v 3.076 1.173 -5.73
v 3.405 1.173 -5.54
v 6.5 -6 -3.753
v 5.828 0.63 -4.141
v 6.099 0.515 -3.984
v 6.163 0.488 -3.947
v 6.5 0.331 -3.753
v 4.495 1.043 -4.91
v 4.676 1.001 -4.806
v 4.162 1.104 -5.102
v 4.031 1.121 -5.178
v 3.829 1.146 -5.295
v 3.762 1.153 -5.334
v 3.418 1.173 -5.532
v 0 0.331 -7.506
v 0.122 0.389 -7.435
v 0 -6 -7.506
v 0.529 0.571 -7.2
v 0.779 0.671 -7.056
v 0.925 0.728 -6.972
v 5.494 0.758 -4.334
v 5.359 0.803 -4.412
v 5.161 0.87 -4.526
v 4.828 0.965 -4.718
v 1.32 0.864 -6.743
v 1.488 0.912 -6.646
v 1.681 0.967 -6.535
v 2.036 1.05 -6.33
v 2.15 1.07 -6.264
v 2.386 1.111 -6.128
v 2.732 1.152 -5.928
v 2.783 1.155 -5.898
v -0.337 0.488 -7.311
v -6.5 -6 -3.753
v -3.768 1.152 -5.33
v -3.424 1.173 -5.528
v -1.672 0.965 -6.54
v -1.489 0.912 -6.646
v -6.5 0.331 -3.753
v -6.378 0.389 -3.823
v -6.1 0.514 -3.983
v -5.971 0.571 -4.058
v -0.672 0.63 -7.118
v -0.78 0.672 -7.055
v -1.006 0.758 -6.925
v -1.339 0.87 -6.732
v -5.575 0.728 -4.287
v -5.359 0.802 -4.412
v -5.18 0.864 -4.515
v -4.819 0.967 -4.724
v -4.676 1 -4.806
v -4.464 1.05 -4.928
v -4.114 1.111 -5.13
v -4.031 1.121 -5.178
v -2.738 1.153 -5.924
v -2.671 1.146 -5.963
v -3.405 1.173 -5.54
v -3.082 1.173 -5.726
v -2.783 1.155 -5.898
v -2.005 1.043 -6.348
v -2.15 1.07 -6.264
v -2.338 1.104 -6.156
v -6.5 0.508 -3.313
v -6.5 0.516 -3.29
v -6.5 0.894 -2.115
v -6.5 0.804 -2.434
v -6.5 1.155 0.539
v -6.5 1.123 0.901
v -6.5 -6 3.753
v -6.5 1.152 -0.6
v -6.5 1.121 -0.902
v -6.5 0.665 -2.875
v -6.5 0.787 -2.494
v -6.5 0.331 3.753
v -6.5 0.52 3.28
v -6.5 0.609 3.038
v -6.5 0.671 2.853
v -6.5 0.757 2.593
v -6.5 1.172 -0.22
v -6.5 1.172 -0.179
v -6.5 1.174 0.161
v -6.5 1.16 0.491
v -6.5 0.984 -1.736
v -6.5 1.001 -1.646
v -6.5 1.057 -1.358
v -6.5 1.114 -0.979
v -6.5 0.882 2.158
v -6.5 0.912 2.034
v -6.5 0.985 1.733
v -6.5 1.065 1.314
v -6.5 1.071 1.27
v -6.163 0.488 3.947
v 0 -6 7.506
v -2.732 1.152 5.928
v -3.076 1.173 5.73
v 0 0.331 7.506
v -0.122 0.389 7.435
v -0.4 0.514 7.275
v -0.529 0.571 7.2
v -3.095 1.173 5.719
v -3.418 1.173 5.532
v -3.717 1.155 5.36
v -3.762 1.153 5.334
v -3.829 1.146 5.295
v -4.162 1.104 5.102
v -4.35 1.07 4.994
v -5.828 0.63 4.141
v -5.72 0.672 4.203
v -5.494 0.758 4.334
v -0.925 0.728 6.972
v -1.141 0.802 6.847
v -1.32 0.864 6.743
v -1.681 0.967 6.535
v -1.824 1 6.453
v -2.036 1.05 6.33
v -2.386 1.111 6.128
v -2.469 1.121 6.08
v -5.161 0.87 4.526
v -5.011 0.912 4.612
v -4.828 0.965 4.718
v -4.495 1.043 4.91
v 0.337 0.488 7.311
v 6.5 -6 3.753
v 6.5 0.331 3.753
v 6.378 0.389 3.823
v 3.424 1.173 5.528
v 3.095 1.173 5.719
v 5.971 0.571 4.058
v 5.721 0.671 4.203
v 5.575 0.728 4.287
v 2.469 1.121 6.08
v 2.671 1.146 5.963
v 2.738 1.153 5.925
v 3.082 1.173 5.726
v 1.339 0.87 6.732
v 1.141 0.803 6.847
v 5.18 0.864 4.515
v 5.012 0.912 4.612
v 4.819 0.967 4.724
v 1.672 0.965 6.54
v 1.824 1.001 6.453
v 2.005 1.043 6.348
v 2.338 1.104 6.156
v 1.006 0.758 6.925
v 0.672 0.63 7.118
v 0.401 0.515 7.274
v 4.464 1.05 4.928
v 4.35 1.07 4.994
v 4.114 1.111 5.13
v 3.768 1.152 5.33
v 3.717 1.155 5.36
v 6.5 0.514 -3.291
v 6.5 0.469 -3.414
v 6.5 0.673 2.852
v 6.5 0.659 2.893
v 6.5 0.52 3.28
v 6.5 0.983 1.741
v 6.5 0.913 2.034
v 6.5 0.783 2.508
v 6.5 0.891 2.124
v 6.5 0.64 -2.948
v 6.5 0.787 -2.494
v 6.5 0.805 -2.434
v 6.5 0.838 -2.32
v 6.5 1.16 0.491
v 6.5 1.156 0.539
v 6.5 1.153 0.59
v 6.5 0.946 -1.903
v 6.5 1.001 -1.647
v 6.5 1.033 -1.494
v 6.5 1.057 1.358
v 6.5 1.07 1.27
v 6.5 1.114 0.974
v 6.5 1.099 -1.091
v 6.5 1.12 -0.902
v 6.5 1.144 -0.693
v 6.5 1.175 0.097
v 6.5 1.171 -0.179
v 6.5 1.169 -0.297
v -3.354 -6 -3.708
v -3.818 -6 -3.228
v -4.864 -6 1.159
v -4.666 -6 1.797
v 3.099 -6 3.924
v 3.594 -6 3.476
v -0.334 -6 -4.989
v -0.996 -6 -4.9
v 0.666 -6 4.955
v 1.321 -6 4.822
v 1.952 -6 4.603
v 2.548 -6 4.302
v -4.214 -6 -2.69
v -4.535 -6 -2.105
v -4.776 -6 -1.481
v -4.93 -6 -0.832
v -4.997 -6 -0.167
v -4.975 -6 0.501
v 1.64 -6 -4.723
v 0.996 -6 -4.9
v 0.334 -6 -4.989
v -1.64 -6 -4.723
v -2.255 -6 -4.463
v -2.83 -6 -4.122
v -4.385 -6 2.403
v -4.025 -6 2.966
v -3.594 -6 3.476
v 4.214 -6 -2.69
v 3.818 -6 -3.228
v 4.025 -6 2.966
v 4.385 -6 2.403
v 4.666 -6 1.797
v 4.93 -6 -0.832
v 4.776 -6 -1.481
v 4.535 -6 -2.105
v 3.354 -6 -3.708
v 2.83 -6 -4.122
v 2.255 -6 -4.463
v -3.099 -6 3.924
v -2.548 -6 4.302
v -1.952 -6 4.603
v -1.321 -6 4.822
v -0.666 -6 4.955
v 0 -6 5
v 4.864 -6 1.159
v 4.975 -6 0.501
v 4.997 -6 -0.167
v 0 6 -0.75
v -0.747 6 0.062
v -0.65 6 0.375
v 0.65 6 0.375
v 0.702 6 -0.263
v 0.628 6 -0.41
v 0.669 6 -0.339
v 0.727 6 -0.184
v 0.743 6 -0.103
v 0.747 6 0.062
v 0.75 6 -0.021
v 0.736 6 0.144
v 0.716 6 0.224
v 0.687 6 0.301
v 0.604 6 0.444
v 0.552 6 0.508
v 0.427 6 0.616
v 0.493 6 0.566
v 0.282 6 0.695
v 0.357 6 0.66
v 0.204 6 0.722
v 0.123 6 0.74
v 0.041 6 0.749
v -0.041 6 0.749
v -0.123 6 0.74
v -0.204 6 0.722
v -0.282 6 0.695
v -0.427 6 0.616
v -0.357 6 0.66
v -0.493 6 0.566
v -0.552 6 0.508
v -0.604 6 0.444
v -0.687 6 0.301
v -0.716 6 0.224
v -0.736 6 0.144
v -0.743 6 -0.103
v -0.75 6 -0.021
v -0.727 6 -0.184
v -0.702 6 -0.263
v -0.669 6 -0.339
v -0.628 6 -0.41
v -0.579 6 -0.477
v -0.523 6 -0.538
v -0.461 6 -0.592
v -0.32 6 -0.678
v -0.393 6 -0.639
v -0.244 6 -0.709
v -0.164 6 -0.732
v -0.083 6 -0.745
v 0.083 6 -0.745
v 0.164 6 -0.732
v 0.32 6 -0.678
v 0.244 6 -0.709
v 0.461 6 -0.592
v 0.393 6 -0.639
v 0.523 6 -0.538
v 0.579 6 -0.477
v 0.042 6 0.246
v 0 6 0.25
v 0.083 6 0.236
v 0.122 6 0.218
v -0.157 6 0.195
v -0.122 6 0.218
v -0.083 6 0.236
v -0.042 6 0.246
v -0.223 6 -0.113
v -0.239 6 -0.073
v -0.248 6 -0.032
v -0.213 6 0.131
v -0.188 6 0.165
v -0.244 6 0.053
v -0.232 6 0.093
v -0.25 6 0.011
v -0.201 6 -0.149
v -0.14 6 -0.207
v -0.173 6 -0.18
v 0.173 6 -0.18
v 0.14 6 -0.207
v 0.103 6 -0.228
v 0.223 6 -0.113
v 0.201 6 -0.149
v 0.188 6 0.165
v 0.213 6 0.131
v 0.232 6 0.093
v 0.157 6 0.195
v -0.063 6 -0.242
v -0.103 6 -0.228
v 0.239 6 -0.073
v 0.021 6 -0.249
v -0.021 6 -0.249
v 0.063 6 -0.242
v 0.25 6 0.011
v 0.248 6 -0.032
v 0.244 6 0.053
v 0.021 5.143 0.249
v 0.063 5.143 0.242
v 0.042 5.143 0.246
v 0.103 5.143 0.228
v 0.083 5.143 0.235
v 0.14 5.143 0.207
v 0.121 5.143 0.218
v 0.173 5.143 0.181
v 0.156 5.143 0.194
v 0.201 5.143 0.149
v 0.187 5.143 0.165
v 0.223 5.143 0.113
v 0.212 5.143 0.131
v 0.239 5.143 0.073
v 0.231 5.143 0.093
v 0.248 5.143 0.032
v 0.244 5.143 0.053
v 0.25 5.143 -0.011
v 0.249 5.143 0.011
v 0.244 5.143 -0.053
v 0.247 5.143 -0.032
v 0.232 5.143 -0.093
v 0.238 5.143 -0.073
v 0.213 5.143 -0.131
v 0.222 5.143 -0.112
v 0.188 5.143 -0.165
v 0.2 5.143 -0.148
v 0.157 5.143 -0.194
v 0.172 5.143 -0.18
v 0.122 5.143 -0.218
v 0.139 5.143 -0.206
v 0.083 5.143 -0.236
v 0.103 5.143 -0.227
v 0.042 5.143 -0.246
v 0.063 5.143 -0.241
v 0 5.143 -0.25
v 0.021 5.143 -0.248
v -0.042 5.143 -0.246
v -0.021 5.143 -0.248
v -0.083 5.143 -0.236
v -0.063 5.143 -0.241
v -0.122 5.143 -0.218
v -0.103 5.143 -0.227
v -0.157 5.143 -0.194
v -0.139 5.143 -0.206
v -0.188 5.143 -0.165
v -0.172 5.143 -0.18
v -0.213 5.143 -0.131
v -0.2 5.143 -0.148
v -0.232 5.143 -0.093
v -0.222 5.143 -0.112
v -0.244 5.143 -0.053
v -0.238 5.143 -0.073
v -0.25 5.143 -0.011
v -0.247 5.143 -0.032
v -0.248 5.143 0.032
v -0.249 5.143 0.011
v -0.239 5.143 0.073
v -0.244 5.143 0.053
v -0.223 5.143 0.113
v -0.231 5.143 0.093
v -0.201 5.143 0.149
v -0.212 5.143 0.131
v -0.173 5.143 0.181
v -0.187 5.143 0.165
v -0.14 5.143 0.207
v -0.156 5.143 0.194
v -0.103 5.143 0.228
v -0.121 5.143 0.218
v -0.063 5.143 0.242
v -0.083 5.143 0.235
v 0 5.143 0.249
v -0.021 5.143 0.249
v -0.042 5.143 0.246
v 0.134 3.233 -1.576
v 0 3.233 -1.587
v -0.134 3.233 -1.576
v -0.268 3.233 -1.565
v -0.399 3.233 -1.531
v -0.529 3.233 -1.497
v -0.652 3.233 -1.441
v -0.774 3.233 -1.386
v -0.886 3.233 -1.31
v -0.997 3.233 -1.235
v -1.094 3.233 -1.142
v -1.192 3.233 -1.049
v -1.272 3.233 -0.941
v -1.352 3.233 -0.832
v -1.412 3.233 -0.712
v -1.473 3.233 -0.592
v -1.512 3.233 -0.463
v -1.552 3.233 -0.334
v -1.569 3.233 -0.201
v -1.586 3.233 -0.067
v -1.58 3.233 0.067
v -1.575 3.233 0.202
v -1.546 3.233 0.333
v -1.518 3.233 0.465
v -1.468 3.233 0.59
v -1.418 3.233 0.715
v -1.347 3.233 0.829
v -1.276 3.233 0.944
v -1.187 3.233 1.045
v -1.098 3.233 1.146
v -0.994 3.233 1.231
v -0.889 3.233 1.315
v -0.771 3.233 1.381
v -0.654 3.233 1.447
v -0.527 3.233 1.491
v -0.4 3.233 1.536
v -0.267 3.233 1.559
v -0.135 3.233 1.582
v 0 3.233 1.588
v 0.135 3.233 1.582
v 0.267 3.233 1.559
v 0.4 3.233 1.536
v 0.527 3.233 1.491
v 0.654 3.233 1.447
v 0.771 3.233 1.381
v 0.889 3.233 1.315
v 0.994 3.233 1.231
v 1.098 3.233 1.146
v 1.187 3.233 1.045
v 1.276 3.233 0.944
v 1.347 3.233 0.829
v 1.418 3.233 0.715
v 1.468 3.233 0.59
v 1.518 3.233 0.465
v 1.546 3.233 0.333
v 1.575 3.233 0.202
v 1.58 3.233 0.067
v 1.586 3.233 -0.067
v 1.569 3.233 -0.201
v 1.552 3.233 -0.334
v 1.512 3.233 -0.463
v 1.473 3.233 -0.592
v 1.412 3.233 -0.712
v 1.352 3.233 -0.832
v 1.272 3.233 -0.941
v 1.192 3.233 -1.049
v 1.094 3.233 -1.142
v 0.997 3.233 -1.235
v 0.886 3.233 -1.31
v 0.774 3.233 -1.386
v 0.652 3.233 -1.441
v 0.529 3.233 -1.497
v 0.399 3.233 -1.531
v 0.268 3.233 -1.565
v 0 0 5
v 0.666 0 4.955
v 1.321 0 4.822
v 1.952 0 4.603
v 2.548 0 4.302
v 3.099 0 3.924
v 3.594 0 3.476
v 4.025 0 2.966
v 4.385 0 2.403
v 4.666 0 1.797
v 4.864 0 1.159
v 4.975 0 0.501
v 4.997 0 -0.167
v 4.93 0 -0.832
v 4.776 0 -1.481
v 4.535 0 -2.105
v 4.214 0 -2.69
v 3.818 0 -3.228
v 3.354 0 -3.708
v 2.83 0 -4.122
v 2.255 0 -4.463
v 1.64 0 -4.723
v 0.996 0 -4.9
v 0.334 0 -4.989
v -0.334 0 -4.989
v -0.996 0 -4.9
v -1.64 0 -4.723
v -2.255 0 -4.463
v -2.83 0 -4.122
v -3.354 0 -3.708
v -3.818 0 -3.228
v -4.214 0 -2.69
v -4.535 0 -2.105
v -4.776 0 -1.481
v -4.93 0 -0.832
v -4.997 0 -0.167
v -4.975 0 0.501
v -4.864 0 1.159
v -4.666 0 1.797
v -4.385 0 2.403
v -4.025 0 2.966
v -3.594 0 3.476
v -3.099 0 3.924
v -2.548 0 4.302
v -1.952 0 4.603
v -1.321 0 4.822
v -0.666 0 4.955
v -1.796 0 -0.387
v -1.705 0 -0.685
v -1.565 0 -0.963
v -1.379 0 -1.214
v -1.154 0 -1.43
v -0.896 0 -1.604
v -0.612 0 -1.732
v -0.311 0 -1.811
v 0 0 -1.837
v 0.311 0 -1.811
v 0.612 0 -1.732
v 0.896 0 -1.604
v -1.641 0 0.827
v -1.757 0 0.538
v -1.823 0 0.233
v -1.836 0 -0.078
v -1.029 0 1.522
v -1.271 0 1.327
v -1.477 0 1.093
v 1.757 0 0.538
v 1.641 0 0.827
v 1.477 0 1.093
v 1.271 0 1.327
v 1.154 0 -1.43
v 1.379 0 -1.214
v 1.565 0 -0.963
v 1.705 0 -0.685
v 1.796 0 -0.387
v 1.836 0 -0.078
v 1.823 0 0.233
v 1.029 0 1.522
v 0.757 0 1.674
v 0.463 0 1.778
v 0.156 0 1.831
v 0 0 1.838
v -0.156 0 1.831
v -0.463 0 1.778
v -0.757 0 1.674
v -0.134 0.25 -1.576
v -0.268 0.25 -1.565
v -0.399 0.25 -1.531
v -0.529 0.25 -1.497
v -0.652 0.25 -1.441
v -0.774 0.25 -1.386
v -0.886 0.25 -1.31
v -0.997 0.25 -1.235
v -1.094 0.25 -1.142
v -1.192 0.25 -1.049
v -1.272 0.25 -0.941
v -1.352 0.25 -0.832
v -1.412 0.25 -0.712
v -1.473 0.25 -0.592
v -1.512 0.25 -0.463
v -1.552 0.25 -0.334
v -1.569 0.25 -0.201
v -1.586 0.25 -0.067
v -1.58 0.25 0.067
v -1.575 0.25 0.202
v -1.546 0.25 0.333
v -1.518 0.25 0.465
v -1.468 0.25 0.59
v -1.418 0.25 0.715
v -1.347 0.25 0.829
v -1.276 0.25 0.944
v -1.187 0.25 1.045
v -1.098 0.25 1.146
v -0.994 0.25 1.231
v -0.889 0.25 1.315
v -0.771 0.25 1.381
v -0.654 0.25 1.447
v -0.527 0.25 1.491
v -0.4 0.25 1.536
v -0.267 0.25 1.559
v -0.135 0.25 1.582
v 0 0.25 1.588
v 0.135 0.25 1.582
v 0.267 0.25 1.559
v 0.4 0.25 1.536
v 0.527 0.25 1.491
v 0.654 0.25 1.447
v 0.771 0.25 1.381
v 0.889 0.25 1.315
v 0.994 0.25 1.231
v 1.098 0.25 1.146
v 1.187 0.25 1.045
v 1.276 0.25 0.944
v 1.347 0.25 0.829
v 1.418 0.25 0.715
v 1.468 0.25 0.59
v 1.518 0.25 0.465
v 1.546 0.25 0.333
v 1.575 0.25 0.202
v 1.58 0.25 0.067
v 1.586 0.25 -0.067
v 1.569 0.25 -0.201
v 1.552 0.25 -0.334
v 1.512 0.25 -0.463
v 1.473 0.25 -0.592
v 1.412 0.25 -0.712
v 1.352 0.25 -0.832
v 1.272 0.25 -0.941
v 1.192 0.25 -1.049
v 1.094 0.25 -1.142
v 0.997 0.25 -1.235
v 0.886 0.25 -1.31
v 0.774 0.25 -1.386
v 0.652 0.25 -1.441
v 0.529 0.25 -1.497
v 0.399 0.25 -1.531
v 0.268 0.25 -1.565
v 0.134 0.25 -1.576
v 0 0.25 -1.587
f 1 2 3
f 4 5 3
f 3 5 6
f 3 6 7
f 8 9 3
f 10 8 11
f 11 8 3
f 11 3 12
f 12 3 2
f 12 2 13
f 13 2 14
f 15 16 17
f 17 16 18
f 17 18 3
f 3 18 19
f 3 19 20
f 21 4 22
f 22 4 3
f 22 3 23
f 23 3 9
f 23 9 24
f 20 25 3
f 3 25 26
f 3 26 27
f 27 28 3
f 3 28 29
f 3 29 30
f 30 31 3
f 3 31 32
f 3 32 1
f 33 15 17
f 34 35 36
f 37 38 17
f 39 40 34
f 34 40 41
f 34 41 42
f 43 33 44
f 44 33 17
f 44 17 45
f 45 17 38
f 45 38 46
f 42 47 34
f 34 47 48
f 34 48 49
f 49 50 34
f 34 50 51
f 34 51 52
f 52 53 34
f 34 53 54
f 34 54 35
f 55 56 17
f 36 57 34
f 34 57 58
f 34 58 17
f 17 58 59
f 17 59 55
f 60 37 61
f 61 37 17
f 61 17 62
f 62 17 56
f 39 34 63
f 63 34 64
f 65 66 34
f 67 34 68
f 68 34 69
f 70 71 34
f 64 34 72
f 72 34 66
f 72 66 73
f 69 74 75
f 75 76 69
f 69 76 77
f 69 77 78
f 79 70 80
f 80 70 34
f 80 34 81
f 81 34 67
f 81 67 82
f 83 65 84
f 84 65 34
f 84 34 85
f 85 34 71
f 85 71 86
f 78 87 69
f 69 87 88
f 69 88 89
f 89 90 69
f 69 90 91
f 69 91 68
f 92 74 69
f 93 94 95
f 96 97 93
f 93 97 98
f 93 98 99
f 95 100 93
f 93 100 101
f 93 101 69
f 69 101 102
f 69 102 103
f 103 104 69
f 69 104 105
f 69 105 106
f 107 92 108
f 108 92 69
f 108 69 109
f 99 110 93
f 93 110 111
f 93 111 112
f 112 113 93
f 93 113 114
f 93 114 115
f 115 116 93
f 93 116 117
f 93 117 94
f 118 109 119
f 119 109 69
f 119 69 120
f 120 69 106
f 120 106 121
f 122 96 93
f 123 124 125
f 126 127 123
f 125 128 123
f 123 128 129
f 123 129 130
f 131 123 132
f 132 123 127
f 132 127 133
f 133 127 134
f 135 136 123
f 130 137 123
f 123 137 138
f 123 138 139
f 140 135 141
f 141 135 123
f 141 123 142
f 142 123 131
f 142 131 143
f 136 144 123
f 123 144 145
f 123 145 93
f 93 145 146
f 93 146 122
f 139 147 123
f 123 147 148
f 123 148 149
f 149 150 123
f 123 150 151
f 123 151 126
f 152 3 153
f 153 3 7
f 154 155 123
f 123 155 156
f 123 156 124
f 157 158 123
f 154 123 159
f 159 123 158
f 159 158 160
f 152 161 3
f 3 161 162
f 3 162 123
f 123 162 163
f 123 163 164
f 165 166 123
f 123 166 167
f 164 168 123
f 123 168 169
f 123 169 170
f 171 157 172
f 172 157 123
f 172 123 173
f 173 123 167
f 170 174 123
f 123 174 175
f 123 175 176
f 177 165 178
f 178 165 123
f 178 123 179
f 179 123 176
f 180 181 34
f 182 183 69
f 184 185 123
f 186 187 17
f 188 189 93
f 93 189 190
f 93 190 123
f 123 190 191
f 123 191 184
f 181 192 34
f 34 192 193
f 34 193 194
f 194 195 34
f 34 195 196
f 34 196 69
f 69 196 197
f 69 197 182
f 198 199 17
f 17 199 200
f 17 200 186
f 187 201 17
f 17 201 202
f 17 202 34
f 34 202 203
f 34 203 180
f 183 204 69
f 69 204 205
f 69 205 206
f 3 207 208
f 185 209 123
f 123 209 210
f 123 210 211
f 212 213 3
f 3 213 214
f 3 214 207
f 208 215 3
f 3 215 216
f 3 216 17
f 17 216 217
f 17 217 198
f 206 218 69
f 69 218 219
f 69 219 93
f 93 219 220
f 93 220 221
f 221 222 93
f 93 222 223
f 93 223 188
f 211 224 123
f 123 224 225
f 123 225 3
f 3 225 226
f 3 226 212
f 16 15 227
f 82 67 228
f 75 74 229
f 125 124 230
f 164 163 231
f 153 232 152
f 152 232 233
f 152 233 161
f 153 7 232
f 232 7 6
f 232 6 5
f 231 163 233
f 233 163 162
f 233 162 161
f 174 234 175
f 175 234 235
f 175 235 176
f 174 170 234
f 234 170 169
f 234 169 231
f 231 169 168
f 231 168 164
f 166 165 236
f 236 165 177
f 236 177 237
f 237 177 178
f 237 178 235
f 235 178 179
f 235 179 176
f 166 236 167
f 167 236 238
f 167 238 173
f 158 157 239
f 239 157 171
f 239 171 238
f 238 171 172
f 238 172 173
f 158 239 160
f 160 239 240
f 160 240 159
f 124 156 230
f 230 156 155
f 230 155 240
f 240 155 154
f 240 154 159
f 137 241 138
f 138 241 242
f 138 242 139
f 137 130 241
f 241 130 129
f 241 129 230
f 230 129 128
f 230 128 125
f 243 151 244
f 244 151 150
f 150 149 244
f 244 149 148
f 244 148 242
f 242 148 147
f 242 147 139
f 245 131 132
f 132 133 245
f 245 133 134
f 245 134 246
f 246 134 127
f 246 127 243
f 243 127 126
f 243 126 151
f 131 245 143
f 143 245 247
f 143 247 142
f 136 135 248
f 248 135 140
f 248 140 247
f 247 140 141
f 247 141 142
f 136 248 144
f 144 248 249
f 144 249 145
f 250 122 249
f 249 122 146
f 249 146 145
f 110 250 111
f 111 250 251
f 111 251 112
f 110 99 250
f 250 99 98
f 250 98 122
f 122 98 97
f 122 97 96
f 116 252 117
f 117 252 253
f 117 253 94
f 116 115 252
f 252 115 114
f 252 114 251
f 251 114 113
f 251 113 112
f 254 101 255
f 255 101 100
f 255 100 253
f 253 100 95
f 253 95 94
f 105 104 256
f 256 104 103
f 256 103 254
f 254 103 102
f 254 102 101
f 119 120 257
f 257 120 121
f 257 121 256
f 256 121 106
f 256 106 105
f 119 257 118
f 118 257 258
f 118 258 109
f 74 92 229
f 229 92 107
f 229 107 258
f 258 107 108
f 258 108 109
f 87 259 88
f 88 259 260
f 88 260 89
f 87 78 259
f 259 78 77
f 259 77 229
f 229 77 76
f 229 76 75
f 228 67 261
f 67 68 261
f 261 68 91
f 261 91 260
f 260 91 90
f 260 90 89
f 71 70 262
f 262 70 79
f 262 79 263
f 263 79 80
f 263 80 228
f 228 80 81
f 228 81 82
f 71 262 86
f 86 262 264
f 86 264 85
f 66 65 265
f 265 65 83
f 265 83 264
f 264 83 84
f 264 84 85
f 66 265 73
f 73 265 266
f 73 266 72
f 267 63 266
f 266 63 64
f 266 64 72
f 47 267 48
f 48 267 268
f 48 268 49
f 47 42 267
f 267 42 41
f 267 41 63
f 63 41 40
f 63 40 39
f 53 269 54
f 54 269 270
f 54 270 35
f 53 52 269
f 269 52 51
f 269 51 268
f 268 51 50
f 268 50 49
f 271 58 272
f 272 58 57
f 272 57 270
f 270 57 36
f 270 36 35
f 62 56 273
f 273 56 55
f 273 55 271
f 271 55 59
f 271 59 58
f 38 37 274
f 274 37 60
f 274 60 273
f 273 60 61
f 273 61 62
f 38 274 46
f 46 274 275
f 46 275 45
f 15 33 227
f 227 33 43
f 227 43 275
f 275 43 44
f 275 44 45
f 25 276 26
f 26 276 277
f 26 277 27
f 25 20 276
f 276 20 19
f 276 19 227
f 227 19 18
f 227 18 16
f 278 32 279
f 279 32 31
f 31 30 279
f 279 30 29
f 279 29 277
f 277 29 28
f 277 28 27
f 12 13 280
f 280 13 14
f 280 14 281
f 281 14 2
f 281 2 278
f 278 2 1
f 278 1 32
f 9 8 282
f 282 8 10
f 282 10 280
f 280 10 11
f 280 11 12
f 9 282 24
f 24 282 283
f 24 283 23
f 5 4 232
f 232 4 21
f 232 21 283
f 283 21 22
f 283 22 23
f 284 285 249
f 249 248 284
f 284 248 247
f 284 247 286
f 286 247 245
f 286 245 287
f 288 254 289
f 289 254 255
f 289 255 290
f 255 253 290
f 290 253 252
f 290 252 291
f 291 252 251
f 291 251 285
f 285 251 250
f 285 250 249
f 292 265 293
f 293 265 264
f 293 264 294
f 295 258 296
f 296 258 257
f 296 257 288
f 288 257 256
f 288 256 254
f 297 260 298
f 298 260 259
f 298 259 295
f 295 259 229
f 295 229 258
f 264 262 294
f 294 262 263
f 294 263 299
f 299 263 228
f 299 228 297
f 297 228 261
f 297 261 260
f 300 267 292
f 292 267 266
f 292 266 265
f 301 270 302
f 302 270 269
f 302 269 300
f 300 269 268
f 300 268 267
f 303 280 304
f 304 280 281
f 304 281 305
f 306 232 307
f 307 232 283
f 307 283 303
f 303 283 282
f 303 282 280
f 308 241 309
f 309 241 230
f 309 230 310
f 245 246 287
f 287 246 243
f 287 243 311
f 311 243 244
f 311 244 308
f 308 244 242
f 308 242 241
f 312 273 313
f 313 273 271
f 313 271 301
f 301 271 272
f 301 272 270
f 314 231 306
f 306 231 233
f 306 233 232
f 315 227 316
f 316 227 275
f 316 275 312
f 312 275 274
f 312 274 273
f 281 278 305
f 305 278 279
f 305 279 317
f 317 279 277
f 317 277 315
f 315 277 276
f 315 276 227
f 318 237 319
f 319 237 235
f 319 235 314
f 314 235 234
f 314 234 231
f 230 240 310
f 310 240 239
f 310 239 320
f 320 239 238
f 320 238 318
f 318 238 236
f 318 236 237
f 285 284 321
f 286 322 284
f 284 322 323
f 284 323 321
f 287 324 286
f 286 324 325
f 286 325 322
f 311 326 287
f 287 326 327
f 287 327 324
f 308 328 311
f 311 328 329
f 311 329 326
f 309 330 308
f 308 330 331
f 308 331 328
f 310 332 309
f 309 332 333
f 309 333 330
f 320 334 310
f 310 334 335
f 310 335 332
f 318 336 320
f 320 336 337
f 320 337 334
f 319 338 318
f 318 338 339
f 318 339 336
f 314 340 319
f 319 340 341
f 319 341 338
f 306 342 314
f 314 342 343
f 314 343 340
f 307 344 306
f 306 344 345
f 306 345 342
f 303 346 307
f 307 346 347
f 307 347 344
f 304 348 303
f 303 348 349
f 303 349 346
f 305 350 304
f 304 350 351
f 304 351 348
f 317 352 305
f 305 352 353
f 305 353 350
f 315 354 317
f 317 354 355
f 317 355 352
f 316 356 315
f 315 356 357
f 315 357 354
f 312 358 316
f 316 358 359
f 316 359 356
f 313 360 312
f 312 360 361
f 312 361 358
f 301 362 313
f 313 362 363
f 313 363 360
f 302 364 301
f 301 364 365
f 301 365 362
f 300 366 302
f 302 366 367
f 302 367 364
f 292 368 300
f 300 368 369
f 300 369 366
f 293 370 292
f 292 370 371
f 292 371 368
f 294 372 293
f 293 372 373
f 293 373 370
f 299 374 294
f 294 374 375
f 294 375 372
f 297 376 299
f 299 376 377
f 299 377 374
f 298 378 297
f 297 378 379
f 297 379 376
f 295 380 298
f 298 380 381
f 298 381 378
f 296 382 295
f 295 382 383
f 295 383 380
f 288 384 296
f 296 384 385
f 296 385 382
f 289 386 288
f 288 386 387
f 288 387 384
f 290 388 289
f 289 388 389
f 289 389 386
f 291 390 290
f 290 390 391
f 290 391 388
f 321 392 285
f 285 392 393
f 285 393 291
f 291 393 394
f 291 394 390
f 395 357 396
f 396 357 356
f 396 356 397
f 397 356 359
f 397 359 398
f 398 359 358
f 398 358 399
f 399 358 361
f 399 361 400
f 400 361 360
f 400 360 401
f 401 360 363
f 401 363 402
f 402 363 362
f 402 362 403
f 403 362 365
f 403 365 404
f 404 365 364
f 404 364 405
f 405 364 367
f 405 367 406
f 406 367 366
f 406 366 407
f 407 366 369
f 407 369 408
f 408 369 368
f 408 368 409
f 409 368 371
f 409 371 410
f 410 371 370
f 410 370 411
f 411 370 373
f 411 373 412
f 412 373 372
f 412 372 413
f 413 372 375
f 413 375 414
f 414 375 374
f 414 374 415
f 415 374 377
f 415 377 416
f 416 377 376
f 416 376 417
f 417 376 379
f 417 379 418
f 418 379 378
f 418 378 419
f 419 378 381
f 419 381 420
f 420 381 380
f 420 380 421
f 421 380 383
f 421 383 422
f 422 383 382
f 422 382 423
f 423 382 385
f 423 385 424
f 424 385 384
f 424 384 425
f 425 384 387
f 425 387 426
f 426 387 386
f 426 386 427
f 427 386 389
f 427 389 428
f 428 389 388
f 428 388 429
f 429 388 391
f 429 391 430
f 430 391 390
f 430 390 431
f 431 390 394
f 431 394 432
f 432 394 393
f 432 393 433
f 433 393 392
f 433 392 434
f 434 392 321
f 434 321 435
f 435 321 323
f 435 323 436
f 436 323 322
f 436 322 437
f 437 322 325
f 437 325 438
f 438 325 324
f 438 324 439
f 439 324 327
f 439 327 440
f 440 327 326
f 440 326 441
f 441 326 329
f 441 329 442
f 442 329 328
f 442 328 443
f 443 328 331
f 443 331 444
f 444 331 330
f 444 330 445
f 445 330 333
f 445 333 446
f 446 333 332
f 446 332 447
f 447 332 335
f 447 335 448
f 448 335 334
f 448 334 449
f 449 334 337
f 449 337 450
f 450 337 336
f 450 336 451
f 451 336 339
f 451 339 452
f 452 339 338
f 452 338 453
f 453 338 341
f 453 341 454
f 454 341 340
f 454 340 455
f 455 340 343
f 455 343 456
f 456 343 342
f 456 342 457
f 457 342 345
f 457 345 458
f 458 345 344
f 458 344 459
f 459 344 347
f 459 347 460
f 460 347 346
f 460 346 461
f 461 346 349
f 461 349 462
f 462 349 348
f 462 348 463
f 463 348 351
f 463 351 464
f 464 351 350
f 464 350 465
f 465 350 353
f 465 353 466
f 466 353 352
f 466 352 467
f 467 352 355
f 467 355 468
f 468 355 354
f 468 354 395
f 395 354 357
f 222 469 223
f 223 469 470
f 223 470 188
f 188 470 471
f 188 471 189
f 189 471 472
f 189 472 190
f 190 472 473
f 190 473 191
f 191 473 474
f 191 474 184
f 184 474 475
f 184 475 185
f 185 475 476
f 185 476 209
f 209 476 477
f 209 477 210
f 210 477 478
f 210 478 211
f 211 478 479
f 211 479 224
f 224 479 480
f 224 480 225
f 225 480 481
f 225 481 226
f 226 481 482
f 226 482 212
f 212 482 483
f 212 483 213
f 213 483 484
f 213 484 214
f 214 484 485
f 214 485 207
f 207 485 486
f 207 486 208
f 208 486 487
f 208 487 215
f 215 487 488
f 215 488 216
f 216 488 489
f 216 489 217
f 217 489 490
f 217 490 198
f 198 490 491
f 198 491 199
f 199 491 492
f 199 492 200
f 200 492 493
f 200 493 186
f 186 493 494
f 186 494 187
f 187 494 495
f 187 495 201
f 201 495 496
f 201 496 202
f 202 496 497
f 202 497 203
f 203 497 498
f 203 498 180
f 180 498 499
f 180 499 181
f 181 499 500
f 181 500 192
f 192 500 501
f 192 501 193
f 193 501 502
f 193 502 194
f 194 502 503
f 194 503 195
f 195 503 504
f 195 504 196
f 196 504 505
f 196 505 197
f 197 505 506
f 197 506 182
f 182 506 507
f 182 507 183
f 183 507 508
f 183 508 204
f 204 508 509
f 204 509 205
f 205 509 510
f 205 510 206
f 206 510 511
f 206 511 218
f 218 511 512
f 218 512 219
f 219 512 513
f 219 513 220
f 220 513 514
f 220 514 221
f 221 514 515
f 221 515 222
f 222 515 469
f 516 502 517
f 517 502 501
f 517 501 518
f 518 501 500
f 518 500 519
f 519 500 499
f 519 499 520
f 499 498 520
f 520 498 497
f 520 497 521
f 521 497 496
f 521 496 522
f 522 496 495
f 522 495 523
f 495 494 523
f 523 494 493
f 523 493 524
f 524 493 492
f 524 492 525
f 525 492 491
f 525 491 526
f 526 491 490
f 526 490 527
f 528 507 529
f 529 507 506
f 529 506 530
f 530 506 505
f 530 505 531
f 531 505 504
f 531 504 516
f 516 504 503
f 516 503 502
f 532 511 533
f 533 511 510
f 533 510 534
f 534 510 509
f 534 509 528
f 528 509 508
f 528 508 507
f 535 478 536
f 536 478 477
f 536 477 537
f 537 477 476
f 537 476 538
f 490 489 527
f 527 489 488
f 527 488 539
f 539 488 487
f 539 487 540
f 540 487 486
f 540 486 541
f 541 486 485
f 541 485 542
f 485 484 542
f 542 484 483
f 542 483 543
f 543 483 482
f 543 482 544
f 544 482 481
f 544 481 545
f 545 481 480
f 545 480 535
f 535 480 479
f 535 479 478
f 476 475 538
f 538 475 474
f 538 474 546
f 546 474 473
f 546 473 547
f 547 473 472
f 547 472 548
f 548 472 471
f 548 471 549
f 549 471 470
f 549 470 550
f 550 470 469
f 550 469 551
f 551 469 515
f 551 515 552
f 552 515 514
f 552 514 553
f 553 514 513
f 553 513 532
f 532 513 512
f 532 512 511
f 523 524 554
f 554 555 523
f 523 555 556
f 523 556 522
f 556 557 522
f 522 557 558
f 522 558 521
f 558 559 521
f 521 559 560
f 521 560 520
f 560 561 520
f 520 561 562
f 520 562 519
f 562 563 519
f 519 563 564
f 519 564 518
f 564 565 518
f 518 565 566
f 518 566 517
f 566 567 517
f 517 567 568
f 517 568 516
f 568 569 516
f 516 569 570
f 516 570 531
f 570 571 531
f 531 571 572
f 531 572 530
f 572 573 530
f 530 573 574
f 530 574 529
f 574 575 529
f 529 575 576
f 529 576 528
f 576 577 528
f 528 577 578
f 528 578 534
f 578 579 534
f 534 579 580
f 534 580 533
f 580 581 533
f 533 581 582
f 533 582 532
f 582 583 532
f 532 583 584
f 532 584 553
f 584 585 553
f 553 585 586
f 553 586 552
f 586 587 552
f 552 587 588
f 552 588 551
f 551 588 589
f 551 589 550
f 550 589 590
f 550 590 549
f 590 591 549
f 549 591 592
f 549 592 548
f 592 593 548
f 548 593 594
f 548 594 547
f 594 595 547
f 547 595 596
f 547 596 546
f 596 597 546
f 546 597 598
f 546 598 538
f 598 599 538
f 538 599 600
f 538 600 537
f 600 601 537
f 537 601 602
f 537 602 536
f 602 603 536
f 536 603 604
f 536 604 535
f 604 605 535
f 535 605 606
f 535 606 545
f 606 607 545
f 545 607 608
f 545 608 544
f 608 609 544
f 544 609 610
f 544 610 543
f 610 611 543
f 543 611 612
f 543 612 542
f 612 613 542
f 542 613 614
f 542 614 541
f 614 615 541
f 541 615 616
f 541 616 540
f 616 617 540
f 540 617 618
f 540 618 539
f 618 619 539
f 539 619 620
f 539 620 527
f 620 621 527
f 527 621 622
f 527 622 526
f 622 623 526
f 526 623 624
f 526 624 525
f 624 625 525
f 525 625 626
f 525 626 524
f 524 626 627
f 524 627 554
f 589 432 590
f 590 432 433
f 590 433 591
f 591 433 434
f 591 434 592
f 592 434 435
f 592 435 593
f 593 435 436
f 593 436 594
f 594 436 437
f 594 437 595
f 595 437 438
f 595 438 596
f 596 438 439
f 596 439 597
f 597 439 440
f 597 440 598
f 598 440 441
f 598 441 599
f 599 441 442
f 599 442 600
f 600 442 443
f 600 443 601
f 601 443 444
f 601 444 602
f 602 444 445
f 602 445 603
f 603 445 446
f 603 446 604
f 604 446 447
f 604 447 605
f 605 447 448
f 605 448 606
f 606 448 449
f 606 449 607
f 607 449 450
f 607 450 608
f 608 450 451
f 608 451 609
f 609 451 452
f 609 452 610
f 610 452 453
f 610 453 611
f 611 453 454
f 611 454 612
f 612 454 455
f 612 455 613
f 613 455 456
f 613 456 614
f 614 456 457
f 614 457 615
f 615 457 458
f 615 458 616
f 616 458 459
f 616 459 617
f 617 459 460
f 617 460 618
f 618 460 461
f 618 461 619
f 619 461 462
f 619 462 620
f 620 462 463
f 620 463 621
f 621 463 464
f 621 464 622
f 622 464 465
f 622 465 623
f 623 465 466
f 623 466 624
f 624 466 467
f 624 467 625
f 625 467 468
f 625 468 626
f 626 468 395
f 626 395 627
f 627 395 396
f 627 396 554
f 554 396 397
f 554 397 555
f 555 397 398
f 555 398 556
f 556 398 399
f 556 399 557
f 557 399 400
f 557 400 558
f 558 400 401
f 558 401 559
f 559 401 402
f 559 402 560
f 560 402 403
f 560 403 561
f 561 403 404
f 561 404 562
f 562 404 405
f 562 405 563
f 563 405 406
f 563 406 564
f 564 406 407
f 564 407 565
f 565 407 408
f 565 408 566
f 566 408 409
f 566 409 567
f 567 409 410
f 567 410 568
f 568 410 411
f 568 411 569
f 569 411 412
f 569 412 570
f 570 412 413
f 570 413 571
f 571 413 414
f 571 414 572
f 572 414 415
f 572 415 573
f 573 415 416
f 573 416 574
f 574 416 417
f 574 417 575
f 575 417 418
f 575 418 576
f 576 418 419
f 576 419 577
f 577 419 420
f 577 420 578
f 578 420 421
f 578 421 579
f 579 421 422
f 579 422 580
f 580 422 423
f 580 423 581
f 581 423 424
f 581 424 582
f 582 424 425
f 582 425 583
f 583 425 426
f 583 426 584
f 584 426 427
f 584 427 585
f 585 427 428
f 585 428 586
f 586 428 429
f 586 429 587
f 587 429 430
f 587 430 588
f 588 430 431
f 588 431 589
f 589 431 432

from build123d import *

# Parameters (mm, degrees)
BOSS_EXTRUDE1_DEPTH = 6
SKETCH3_R           = 0.25
CUT_EXTRUDE1_DEPTH  = 16.575086945


with BuildPart() as part:
    # Sketch1 → Boss-Extrude1 (new, symmetric)
    with BuildSketch(Plane(origin=(0, 0, 0), x_dir=(1, 0, 0), z_dir=(0, 1, 0))):
        Polygon((0, 7.505553499), (-6.5, 3.75277675), (-6.5, -3.75277675), (0, -7.505553499), (6.5, -3.75277675), (6.5, 3.75277675), align=None)
    extrude(amount=BOSS_EXTRUDE1_DEPTH, both=True)

    # Sketch2 → Cut-Revolve3 (revolve, cut)
    with BuildSketch(Plane.ZY):
        Polygon((-0.75, 6), (-7.505553499, 0.33141755), (-7.505553499, 6), align=None)
    revolve(axis=Axis((0, 0, 0), (0, 1, 0)), mode=Mode.SUBTRACT)

    # Sketch3 → Cut-Extrude1 (cut, through all)
    with BuildSketch(Plane(origin=(0, 6, 0), x_dir=(1, 0, 0), z_dir=(0, 1, 0))):
        with Locations(Location((0, 0, 0), (0, 0, 270))):
            Circle(SKETCH3_R)
    extrude(amount=-CUT_EXTRUDE1_DEPTH, mode=Mode.SUBTRACT)

    # Sketch4 → Cut-Revolve4 (revolve, cut)
    with BuildSketch(Plane(origin=(0, 0, 0), x_dir=(0, 0, -1), z_dir=(1, 0, 0))):
        Polygon((0, -6), (-5, -6), (-5, 0), (-1.8375, 0), (-1.5875, 0.25), (-1.5875, 3.232815039), (0, 5.5), align=None)
    revolve(axis=Axis((0, 6, 0), (0, -1, 0)), mode=Mode.SUBTRACT)


solid = part.part
